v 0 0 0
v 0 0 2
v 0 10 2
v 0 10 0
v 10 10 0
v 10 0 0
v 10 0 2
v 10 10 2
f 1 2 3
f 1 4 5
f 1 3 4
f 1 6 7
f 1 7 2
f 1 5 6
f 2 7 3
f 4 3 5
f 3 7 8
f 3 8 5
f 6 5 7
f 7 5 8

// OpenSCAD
/* Warning, this is a very basic generator with a lot of approximation 
input data : [PQFP, KHB, 10x10x2mm, 44, , A, C04-21291A]
generated by com.zoubworld.electronics.cad.model3d.Basic
Date : Sun Feb 15 10:50:49 CET 2026
*/

//body
color("black")
translate([0,0,0])
cube([10.0,10.0,2.0], center=false);
